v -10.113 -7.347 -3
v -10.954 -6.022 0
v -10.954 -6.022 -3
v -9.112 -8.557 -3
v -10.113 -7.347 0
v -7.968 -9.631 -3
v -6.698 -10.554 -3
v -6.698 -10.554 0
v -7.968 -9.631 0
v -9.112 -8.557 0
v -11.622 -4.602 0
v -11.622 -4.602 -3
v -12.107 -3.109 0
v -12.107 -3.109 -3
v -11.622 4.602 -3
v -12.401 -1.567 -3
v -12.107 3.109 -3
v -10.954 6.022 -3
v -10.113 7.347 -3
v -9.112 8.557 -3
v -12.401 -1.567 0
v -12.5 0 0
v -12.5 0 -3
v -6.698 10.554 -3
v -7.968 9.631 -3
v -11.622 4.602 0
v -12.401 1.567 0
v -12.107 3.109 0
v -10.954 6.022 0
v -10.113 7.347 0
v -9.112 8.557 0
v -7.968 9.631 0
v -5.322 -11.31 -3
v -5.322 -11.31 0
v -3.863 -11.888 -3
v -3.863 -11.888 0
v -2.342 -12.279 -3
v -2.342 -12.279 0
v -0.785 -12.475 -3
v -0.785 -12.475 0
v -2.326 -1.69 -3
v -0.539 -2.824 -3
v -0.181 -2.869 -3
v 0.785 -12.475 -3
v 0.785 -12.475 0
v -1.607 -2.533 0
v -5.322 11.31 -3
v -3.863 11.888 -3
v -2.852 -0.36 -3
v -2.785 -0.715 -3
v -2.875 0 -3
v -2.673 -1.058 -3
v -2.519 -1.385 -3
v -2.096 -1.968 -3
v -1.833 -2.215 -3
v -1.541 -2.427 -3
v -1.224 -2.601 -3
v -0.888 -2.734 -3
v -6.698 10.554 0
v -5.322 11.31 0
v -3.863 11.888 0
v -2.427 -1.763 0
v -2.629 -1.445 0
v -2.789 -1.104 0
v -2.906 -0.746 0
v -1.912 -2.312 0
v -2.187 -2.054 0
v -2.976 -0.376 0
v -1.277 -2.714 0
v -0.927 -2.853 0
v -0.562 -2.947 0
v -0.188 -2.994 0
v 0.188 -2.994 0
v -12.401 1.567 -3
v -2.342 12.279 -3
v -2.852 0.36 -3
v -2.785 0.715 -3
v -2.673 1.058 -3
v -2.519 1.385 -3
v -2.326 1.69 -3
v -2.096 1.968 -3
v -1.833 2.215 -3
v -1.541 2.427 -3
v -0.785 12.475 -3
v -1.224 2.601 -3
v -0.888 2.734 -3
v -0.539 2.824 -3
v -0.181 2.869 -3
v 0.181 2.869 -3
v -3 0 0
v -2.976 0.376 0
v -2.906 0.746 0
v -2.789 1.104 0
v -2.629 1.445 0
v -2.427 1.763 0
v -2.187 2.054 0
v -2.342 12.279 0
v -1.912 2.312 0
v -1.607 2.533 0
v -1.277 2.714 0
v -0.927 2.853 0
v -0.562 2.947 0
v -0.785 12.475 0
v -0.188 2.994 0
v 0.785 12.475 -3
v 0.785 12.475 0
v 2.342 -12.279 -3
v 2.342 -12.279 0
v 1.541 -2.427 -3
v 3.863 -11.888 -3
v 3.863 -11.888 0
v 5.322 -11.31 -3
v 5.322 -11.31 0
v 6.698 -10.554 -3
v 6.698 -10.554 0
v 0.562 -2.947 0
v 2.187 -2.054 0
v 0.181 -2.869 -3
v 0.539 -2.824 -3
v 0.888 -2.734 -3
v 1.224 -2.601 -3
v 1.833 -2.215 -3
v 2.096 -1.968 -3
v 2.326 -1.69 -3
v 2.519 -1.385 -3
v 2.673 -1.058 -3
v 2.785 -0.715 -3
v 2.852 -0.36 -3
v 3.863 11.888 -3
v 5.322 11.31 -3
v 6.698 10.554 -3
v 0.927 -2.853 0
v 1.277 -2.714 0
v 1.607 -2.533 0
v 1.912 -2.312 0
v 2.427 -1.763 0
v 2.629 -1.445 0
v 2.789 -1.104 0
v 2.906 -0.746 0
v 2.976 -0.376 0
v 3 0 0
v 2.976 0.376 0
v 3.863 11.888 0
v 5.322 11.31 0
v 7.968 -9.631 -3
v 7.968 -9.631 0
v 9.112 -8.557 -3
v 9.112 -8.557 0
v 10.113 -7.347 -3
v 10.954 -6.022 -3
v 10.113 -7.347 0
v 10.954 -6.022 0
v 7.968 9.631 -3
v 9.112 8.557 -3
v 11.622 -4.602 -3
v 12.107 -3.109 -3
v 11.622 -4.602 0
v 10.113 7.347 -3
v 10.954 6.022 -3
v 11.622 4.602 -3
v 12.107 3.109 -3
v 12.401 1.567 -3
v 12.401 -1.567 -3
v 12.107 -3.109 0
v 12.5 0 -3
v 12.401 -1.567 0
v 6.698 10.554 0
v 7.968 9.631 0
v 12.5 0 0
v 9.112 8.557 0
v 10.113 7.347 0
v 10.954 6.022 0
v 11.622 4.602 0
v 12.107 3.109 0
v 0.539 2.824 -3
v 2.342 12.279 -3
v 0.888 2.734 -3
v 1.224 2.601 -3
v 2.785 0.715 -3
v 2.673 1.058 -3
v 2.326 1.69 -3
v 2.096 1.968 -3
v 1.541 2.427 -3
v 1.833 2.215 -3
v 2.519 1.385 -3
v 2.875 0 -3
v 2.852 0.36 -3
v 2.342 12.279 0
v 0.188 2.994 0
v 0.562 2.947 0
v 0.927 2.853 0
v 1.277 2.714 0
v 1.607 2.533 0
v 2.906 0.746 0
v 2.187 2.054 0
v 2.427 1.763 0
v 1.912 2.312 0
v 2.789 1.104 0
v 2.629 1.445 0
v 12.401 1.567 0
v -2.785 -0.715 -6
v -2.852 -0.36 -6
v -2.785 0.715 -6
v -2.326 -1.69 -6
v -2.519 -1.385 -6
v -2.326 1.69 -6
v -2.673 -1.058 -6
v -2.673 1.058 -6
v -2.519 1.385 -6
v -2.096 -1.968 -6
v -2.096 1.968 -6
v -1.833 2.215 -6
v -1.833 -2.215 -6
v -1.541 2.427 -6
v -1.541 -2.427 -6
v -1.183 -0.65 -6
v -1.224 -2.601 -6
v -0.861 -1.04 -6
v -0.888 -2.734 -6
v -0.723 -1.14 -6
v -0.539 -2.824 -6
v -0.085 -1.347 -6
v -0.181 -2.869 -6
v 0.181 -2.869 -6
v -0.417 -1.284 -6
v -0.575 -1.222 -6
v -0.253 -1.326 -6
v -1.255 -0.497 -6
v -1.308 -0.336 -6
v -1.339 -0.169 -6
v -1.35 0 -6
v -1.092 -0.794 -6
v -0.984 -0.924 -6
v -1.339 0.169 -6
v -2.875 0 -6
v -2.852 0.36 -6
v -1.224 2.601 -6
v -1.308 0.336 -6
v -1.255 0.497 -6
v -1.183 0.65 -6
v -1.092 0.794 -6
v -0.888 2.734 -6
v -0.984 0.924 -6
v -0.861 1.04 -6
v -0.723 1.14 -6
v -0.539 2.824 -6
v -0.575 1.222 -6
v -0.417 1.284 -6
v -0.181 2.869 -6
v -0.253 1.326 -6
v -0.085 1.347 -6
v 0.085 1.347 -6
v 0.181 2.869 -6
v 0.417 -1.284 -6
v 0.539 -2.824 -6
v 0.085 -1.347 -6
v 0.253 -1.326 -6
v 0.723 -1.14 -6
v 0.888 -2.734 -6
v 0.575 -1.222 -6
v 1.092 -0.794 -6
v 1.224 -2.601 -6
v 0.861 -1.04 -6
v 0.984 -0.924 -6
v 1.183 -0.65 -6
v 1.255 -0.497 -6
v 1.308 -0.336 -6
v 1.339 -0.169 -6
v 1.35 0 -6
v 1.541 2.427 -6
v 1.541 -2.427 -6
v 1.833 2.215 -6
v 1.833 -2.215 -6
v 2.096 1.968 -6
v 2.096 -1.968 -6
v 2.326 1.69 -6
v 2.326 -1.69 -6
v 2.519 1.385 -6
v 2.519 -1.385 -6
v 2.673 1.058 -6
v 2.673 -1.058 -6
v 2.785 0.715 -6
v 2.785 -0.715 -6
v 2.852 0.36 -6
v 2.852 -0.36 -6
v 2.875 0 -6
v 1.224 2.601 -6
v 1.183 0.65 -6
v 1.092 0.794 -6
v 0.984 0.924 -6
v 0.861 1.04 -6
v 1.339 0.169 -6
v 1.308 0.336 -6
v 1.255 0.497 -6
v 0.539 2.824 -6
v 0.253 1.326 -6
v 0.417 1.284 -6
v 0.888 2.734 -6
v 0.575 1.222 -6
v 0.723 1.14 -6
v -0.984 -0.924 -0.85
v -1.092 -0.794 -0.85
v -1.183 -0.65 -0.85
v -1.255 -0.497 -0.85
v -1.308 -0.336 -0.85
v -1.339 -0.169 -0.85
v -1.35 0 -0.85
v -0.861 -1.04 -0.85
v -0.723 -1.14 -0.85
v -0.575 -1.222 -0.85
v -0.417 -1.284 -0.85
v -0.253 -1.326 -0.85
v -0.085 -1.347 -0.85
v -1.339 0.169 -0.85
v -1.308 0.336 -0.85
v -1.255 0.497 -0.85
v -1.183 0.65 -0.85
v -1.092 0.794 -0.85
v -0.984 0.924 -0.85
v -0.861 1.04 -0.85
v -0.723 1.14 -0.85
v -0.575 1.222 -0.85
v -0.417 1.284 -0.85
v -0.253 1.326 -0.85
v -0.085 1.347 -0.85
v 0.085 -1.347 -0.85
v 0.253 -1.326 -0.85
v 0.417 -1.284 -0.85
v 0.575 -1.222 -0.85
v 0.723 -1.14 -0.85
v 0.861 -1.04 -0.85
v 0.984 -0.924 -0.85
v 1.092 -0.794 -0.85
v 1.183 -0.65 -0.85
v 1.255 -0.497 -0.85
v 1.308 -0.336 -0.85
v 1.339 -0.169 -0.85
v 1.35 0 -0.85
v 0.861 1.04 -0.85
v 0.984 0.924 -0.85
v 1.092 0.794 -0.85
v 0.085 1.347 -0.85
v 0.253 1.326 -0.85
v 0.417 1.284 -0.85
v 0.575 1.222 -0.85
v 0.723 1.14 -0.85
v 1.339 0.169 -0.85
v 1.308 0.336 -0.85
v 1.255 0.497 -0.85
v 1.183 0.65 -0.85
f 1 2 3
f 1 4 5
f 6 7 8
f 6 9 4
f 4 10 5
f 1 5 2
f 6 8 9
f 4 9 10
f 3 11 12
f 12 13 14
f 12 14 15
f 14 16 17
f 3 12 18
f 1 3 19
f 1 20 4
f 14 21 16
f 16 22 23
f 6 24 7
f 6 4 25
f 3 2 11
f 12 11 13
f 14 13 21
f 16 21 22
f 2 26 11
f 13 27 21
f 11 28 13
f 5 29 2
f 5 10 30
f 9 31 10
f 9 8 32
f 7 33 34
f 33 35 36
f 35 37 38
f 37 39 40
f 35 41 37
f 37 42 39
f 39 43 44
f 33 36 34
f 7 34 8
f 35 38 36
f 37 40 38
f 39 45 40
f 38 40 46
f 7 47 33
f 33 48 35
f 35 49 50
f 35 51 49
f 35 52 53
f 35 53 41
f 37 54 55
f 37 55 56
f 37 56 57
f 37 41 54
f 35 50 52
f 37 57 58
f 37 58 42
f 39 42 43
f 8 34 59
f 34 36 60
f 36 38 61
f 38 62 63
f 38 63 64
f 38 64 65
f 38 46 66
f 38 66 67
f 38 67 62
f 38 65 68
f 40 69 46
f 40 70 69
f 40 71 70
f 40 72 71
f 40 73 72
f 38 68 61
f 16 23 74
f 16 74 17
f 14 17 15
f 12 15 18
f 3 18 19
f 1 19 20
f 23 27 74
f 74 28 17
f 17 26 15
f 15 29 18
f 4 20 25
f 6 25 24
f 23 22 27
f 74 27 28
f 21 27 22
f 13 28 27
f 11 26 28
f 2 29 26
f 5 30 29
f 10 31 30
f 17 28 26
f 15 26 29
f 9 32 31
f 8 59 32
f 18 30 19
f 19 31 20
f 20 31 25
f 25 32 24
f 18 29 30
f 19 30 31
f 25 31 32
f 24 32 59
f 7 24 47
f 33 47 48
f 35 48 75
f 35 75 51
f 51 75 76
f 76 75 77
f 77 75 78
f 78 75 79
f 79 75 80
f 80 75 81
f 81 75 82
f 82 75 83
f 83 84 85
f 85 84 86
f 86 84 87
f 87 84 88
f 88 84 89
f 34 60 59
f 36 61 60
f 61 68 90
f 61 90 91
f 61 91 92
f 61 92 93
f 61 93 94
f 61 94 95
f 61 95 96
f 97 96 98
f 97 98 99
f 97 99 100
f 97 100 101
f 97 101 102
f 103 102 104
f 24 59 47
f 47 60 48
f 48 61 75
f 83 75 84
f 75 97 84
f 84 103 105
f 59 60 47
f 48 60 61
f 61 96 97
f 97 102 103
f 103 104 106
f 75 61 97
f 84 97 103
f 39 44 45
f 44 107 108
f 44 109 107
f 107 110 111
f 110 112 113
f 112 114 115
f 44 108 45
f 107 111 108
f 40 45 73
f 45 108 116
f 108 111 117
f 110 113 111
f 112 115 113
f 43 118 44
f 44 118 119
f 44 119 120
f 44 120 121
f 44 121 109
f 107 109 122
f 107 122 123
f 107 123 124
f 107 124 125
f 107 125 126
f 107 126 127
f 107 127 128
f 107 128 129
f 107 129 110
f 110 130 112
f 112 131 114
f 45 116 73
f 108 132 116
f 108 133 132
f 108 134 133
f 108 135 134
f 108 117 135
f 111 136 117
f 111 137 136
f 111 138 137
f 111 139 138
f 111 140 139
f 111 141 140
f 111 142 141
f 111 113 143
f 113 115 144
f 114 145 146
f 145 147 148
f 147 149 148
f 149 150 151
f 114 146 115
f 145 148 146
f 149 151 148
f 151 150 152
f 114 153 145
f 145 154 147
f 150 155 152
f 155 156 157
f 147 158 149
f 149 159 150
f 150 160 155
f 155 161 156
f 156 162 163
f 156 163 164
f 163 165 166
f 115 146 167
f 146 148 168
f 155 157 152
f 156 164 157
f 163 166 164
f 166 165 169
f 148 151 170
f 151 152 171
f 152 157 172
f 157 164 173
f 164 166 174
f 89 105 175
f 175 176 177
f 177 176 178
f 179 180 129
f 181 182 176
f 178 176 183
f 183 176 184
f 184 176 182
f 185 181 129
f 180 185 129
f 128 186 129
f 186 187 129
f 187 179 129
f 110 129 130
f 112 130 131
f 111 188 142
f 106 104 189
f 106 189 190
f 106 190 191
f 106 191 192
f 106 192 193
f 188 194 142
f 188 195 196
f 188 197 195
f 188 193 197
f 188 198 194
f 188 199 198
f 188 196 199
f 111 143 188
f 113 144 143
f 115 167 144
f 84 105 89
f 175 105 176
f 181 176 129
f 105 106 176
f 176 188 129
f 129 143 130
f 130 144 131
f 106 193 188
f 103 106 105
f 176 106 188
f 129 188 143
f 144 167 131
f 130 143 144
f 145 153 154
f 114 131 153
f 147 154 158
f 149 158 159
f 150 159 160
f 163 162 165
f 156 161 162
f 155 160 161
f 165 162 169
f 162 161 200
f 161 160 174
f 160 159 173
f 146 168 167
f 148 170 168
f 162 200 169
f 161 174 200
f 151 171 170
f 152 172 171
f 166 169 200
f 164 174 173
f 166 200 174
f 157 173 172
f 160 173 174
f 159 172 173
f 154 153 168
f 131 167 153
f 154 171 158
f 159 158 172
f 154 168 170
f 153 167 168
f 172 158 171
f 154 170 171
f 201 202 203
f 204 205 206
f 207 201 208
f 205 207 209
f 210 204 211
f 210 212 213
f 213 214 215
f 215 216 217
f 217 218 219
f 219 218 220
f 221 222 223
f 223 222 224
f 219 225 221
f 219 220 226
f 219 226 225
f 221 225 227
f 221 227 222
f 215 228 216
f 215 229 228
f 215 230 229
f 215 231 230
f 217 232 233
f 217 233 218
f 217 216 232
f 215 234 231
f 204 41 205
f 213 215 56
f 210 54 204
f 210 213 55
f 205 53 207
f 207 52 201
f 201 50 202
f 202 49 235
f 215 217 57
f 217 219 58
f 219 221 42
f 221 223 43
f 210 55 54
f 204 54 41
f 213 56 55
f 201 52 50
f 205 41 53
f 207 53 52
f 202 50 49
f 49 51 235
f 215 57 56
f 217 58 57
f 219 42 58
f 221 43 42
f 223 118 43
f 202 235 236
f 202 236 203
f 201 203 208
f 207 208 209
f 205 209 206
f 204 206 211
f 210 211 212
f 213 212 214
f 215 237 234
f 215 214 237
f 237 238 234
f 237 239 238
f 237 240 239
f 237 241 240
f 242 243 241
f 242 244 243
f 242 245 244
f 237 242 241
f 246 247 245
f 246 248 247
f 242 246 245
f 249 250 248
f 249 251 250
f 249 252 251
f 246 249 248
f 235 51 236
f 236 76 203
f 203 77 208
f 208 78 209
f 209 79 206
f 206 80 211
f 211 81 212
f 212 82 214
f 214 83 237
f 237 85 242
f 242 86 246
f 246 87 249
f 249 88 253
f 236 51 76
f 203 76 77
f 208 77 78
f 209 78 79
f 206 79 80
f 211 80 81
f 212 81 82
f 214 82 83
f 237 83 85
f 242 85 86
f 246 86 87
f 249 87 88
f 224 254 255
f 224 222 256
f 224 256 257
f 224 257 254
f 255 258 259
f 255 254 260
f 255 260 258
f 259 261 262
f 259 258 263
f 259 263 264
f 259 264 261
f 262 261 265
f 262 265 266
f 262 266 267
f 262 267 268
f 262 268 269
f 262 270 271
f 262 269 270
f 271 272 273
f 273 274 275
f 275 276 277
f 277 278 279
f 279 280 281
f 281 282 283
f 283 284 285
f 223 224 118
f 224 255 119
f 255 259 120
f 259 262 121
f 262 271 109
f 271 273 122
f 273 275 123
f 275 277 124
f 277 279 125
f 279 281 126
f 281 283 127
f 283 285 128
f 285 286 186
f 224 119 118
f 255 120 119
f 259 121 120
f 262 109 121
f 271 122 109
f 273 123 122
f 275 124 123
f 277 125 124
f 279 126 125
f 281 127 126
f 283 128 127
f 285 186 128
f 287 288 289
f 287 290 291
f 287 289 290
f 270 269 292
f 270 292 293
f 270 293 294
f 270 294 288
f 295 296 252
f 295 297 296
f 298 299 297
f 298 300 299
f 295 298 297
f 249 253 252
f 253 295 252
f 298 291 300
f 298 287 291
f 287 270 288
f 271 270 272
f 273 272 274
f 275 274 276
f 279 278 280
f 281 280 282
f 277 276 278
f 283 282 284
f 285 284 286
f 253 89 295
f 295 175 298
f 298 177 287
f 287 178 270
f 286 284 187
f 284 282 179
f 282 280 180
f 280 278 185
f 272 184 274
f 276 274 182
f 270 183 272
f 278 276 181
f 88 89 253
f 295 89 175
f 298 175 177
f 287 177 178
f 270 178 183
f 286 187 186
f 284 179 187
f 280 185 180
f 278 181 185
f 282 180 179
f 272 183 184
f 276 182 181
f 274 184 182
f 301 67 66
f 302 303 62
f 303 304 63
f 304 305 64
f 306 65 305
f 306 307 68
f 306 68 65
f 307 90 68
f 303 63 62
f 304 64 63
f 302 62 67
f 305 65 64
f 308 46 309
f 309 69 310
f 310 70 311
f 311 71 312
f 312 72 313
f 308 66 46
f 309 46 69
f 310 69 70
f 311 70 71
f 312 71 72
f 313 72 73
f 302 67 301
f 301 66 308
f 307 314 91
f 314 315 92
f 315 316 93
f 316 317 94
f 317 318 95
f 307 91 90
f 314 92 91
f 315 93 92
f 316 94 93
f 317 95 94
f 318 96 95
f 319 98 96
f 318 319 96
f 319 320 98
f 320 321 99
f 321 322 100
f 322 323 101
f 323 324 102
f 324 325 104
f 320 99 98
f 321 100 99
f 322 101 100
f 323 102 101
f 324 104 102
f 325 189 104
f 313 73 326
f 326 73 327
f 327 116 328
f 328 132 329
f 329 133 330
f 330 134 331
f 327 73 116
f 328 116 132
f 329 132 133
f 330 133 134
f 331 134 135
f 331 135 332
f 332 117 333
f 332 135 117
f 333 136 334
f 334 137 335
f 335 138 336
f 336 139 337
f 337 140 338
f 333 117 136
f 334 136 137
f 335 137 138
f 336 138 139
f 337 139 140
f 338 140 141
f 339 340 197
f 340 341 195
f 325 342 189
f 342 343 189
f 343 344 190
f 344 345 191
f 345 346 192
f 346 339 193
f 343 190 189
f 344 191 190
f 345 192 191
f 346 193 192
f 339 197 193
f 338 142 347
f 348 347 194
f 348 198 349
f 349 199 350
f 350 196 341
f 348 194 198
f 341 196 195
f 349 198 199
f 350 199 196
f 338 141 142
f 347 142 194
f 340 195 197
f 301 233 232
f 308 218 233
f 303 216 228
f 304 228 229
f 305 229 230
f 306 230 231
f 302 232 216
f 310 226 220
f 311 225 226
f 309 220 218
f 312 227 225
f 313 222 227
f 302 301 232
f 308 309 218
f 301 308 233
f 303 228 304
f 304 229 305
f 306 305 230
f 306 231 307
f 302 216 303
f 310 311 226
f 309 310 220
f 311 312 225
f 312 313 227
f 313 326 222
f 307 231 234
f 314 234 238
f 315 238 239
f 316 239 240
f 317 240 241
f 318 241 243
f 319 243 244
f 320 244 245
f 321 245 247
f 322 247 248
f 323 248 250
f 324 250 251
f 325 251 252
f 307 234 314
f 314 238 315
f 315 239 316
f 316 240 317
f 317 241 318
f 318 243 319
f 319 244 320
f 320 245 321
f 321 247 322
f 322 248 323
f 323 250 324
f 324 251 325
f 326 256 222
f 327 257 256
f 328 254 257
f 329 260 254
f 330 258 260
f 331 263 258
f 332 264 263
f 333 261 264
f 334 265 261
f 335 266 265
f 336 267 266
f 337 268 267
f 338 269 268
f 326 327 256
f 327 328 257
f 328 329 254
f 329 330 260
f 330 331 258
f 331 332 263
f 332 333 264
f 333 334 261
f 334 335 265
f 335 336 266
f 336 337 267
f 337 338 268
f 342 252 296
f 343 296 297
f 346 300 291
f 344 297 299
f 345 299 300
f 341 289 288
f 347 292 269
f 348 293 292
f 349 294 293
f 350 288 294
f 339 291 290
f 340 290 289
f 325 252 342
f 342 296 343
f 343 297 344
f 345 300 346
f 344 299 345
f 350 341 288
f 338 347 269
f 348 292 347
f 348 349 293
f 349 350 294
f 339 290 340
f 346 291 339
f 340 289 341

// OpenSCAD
$fn = 50;

difference() {
	union() {
		translate(v = [0, 0, -3.0]) {
			cylinder(h = 3, r = 12.5);
		}
		#translate(v = [0, 0, -6.0]) {
			cylinder(h = 6, r = 2.875);
		}
	}
	union() {
		translate(v = [0, 0, 0]) {
			rotate(a = [0, 0, 0]) {
				difference() {
					union() {
						translate(v = [0, 0, -6.0]) {
							cylinder(h = 6, r = 1.0);
						}
						translate(v = [0, 0, -0.85]) {
							cylinder(h = 0.85, r1 = 1.35, r2 = 3.0);
						}
						translate(v = [0, 0, -6.0]) {
							cylinder(h = 6, r = 1.35);
						}
						translate(v = [0, 0, -6.0]) {
							cylinder(h = 6, r = 1.0);
						}
					}
					union();
				}
			}
		}
	}
}
